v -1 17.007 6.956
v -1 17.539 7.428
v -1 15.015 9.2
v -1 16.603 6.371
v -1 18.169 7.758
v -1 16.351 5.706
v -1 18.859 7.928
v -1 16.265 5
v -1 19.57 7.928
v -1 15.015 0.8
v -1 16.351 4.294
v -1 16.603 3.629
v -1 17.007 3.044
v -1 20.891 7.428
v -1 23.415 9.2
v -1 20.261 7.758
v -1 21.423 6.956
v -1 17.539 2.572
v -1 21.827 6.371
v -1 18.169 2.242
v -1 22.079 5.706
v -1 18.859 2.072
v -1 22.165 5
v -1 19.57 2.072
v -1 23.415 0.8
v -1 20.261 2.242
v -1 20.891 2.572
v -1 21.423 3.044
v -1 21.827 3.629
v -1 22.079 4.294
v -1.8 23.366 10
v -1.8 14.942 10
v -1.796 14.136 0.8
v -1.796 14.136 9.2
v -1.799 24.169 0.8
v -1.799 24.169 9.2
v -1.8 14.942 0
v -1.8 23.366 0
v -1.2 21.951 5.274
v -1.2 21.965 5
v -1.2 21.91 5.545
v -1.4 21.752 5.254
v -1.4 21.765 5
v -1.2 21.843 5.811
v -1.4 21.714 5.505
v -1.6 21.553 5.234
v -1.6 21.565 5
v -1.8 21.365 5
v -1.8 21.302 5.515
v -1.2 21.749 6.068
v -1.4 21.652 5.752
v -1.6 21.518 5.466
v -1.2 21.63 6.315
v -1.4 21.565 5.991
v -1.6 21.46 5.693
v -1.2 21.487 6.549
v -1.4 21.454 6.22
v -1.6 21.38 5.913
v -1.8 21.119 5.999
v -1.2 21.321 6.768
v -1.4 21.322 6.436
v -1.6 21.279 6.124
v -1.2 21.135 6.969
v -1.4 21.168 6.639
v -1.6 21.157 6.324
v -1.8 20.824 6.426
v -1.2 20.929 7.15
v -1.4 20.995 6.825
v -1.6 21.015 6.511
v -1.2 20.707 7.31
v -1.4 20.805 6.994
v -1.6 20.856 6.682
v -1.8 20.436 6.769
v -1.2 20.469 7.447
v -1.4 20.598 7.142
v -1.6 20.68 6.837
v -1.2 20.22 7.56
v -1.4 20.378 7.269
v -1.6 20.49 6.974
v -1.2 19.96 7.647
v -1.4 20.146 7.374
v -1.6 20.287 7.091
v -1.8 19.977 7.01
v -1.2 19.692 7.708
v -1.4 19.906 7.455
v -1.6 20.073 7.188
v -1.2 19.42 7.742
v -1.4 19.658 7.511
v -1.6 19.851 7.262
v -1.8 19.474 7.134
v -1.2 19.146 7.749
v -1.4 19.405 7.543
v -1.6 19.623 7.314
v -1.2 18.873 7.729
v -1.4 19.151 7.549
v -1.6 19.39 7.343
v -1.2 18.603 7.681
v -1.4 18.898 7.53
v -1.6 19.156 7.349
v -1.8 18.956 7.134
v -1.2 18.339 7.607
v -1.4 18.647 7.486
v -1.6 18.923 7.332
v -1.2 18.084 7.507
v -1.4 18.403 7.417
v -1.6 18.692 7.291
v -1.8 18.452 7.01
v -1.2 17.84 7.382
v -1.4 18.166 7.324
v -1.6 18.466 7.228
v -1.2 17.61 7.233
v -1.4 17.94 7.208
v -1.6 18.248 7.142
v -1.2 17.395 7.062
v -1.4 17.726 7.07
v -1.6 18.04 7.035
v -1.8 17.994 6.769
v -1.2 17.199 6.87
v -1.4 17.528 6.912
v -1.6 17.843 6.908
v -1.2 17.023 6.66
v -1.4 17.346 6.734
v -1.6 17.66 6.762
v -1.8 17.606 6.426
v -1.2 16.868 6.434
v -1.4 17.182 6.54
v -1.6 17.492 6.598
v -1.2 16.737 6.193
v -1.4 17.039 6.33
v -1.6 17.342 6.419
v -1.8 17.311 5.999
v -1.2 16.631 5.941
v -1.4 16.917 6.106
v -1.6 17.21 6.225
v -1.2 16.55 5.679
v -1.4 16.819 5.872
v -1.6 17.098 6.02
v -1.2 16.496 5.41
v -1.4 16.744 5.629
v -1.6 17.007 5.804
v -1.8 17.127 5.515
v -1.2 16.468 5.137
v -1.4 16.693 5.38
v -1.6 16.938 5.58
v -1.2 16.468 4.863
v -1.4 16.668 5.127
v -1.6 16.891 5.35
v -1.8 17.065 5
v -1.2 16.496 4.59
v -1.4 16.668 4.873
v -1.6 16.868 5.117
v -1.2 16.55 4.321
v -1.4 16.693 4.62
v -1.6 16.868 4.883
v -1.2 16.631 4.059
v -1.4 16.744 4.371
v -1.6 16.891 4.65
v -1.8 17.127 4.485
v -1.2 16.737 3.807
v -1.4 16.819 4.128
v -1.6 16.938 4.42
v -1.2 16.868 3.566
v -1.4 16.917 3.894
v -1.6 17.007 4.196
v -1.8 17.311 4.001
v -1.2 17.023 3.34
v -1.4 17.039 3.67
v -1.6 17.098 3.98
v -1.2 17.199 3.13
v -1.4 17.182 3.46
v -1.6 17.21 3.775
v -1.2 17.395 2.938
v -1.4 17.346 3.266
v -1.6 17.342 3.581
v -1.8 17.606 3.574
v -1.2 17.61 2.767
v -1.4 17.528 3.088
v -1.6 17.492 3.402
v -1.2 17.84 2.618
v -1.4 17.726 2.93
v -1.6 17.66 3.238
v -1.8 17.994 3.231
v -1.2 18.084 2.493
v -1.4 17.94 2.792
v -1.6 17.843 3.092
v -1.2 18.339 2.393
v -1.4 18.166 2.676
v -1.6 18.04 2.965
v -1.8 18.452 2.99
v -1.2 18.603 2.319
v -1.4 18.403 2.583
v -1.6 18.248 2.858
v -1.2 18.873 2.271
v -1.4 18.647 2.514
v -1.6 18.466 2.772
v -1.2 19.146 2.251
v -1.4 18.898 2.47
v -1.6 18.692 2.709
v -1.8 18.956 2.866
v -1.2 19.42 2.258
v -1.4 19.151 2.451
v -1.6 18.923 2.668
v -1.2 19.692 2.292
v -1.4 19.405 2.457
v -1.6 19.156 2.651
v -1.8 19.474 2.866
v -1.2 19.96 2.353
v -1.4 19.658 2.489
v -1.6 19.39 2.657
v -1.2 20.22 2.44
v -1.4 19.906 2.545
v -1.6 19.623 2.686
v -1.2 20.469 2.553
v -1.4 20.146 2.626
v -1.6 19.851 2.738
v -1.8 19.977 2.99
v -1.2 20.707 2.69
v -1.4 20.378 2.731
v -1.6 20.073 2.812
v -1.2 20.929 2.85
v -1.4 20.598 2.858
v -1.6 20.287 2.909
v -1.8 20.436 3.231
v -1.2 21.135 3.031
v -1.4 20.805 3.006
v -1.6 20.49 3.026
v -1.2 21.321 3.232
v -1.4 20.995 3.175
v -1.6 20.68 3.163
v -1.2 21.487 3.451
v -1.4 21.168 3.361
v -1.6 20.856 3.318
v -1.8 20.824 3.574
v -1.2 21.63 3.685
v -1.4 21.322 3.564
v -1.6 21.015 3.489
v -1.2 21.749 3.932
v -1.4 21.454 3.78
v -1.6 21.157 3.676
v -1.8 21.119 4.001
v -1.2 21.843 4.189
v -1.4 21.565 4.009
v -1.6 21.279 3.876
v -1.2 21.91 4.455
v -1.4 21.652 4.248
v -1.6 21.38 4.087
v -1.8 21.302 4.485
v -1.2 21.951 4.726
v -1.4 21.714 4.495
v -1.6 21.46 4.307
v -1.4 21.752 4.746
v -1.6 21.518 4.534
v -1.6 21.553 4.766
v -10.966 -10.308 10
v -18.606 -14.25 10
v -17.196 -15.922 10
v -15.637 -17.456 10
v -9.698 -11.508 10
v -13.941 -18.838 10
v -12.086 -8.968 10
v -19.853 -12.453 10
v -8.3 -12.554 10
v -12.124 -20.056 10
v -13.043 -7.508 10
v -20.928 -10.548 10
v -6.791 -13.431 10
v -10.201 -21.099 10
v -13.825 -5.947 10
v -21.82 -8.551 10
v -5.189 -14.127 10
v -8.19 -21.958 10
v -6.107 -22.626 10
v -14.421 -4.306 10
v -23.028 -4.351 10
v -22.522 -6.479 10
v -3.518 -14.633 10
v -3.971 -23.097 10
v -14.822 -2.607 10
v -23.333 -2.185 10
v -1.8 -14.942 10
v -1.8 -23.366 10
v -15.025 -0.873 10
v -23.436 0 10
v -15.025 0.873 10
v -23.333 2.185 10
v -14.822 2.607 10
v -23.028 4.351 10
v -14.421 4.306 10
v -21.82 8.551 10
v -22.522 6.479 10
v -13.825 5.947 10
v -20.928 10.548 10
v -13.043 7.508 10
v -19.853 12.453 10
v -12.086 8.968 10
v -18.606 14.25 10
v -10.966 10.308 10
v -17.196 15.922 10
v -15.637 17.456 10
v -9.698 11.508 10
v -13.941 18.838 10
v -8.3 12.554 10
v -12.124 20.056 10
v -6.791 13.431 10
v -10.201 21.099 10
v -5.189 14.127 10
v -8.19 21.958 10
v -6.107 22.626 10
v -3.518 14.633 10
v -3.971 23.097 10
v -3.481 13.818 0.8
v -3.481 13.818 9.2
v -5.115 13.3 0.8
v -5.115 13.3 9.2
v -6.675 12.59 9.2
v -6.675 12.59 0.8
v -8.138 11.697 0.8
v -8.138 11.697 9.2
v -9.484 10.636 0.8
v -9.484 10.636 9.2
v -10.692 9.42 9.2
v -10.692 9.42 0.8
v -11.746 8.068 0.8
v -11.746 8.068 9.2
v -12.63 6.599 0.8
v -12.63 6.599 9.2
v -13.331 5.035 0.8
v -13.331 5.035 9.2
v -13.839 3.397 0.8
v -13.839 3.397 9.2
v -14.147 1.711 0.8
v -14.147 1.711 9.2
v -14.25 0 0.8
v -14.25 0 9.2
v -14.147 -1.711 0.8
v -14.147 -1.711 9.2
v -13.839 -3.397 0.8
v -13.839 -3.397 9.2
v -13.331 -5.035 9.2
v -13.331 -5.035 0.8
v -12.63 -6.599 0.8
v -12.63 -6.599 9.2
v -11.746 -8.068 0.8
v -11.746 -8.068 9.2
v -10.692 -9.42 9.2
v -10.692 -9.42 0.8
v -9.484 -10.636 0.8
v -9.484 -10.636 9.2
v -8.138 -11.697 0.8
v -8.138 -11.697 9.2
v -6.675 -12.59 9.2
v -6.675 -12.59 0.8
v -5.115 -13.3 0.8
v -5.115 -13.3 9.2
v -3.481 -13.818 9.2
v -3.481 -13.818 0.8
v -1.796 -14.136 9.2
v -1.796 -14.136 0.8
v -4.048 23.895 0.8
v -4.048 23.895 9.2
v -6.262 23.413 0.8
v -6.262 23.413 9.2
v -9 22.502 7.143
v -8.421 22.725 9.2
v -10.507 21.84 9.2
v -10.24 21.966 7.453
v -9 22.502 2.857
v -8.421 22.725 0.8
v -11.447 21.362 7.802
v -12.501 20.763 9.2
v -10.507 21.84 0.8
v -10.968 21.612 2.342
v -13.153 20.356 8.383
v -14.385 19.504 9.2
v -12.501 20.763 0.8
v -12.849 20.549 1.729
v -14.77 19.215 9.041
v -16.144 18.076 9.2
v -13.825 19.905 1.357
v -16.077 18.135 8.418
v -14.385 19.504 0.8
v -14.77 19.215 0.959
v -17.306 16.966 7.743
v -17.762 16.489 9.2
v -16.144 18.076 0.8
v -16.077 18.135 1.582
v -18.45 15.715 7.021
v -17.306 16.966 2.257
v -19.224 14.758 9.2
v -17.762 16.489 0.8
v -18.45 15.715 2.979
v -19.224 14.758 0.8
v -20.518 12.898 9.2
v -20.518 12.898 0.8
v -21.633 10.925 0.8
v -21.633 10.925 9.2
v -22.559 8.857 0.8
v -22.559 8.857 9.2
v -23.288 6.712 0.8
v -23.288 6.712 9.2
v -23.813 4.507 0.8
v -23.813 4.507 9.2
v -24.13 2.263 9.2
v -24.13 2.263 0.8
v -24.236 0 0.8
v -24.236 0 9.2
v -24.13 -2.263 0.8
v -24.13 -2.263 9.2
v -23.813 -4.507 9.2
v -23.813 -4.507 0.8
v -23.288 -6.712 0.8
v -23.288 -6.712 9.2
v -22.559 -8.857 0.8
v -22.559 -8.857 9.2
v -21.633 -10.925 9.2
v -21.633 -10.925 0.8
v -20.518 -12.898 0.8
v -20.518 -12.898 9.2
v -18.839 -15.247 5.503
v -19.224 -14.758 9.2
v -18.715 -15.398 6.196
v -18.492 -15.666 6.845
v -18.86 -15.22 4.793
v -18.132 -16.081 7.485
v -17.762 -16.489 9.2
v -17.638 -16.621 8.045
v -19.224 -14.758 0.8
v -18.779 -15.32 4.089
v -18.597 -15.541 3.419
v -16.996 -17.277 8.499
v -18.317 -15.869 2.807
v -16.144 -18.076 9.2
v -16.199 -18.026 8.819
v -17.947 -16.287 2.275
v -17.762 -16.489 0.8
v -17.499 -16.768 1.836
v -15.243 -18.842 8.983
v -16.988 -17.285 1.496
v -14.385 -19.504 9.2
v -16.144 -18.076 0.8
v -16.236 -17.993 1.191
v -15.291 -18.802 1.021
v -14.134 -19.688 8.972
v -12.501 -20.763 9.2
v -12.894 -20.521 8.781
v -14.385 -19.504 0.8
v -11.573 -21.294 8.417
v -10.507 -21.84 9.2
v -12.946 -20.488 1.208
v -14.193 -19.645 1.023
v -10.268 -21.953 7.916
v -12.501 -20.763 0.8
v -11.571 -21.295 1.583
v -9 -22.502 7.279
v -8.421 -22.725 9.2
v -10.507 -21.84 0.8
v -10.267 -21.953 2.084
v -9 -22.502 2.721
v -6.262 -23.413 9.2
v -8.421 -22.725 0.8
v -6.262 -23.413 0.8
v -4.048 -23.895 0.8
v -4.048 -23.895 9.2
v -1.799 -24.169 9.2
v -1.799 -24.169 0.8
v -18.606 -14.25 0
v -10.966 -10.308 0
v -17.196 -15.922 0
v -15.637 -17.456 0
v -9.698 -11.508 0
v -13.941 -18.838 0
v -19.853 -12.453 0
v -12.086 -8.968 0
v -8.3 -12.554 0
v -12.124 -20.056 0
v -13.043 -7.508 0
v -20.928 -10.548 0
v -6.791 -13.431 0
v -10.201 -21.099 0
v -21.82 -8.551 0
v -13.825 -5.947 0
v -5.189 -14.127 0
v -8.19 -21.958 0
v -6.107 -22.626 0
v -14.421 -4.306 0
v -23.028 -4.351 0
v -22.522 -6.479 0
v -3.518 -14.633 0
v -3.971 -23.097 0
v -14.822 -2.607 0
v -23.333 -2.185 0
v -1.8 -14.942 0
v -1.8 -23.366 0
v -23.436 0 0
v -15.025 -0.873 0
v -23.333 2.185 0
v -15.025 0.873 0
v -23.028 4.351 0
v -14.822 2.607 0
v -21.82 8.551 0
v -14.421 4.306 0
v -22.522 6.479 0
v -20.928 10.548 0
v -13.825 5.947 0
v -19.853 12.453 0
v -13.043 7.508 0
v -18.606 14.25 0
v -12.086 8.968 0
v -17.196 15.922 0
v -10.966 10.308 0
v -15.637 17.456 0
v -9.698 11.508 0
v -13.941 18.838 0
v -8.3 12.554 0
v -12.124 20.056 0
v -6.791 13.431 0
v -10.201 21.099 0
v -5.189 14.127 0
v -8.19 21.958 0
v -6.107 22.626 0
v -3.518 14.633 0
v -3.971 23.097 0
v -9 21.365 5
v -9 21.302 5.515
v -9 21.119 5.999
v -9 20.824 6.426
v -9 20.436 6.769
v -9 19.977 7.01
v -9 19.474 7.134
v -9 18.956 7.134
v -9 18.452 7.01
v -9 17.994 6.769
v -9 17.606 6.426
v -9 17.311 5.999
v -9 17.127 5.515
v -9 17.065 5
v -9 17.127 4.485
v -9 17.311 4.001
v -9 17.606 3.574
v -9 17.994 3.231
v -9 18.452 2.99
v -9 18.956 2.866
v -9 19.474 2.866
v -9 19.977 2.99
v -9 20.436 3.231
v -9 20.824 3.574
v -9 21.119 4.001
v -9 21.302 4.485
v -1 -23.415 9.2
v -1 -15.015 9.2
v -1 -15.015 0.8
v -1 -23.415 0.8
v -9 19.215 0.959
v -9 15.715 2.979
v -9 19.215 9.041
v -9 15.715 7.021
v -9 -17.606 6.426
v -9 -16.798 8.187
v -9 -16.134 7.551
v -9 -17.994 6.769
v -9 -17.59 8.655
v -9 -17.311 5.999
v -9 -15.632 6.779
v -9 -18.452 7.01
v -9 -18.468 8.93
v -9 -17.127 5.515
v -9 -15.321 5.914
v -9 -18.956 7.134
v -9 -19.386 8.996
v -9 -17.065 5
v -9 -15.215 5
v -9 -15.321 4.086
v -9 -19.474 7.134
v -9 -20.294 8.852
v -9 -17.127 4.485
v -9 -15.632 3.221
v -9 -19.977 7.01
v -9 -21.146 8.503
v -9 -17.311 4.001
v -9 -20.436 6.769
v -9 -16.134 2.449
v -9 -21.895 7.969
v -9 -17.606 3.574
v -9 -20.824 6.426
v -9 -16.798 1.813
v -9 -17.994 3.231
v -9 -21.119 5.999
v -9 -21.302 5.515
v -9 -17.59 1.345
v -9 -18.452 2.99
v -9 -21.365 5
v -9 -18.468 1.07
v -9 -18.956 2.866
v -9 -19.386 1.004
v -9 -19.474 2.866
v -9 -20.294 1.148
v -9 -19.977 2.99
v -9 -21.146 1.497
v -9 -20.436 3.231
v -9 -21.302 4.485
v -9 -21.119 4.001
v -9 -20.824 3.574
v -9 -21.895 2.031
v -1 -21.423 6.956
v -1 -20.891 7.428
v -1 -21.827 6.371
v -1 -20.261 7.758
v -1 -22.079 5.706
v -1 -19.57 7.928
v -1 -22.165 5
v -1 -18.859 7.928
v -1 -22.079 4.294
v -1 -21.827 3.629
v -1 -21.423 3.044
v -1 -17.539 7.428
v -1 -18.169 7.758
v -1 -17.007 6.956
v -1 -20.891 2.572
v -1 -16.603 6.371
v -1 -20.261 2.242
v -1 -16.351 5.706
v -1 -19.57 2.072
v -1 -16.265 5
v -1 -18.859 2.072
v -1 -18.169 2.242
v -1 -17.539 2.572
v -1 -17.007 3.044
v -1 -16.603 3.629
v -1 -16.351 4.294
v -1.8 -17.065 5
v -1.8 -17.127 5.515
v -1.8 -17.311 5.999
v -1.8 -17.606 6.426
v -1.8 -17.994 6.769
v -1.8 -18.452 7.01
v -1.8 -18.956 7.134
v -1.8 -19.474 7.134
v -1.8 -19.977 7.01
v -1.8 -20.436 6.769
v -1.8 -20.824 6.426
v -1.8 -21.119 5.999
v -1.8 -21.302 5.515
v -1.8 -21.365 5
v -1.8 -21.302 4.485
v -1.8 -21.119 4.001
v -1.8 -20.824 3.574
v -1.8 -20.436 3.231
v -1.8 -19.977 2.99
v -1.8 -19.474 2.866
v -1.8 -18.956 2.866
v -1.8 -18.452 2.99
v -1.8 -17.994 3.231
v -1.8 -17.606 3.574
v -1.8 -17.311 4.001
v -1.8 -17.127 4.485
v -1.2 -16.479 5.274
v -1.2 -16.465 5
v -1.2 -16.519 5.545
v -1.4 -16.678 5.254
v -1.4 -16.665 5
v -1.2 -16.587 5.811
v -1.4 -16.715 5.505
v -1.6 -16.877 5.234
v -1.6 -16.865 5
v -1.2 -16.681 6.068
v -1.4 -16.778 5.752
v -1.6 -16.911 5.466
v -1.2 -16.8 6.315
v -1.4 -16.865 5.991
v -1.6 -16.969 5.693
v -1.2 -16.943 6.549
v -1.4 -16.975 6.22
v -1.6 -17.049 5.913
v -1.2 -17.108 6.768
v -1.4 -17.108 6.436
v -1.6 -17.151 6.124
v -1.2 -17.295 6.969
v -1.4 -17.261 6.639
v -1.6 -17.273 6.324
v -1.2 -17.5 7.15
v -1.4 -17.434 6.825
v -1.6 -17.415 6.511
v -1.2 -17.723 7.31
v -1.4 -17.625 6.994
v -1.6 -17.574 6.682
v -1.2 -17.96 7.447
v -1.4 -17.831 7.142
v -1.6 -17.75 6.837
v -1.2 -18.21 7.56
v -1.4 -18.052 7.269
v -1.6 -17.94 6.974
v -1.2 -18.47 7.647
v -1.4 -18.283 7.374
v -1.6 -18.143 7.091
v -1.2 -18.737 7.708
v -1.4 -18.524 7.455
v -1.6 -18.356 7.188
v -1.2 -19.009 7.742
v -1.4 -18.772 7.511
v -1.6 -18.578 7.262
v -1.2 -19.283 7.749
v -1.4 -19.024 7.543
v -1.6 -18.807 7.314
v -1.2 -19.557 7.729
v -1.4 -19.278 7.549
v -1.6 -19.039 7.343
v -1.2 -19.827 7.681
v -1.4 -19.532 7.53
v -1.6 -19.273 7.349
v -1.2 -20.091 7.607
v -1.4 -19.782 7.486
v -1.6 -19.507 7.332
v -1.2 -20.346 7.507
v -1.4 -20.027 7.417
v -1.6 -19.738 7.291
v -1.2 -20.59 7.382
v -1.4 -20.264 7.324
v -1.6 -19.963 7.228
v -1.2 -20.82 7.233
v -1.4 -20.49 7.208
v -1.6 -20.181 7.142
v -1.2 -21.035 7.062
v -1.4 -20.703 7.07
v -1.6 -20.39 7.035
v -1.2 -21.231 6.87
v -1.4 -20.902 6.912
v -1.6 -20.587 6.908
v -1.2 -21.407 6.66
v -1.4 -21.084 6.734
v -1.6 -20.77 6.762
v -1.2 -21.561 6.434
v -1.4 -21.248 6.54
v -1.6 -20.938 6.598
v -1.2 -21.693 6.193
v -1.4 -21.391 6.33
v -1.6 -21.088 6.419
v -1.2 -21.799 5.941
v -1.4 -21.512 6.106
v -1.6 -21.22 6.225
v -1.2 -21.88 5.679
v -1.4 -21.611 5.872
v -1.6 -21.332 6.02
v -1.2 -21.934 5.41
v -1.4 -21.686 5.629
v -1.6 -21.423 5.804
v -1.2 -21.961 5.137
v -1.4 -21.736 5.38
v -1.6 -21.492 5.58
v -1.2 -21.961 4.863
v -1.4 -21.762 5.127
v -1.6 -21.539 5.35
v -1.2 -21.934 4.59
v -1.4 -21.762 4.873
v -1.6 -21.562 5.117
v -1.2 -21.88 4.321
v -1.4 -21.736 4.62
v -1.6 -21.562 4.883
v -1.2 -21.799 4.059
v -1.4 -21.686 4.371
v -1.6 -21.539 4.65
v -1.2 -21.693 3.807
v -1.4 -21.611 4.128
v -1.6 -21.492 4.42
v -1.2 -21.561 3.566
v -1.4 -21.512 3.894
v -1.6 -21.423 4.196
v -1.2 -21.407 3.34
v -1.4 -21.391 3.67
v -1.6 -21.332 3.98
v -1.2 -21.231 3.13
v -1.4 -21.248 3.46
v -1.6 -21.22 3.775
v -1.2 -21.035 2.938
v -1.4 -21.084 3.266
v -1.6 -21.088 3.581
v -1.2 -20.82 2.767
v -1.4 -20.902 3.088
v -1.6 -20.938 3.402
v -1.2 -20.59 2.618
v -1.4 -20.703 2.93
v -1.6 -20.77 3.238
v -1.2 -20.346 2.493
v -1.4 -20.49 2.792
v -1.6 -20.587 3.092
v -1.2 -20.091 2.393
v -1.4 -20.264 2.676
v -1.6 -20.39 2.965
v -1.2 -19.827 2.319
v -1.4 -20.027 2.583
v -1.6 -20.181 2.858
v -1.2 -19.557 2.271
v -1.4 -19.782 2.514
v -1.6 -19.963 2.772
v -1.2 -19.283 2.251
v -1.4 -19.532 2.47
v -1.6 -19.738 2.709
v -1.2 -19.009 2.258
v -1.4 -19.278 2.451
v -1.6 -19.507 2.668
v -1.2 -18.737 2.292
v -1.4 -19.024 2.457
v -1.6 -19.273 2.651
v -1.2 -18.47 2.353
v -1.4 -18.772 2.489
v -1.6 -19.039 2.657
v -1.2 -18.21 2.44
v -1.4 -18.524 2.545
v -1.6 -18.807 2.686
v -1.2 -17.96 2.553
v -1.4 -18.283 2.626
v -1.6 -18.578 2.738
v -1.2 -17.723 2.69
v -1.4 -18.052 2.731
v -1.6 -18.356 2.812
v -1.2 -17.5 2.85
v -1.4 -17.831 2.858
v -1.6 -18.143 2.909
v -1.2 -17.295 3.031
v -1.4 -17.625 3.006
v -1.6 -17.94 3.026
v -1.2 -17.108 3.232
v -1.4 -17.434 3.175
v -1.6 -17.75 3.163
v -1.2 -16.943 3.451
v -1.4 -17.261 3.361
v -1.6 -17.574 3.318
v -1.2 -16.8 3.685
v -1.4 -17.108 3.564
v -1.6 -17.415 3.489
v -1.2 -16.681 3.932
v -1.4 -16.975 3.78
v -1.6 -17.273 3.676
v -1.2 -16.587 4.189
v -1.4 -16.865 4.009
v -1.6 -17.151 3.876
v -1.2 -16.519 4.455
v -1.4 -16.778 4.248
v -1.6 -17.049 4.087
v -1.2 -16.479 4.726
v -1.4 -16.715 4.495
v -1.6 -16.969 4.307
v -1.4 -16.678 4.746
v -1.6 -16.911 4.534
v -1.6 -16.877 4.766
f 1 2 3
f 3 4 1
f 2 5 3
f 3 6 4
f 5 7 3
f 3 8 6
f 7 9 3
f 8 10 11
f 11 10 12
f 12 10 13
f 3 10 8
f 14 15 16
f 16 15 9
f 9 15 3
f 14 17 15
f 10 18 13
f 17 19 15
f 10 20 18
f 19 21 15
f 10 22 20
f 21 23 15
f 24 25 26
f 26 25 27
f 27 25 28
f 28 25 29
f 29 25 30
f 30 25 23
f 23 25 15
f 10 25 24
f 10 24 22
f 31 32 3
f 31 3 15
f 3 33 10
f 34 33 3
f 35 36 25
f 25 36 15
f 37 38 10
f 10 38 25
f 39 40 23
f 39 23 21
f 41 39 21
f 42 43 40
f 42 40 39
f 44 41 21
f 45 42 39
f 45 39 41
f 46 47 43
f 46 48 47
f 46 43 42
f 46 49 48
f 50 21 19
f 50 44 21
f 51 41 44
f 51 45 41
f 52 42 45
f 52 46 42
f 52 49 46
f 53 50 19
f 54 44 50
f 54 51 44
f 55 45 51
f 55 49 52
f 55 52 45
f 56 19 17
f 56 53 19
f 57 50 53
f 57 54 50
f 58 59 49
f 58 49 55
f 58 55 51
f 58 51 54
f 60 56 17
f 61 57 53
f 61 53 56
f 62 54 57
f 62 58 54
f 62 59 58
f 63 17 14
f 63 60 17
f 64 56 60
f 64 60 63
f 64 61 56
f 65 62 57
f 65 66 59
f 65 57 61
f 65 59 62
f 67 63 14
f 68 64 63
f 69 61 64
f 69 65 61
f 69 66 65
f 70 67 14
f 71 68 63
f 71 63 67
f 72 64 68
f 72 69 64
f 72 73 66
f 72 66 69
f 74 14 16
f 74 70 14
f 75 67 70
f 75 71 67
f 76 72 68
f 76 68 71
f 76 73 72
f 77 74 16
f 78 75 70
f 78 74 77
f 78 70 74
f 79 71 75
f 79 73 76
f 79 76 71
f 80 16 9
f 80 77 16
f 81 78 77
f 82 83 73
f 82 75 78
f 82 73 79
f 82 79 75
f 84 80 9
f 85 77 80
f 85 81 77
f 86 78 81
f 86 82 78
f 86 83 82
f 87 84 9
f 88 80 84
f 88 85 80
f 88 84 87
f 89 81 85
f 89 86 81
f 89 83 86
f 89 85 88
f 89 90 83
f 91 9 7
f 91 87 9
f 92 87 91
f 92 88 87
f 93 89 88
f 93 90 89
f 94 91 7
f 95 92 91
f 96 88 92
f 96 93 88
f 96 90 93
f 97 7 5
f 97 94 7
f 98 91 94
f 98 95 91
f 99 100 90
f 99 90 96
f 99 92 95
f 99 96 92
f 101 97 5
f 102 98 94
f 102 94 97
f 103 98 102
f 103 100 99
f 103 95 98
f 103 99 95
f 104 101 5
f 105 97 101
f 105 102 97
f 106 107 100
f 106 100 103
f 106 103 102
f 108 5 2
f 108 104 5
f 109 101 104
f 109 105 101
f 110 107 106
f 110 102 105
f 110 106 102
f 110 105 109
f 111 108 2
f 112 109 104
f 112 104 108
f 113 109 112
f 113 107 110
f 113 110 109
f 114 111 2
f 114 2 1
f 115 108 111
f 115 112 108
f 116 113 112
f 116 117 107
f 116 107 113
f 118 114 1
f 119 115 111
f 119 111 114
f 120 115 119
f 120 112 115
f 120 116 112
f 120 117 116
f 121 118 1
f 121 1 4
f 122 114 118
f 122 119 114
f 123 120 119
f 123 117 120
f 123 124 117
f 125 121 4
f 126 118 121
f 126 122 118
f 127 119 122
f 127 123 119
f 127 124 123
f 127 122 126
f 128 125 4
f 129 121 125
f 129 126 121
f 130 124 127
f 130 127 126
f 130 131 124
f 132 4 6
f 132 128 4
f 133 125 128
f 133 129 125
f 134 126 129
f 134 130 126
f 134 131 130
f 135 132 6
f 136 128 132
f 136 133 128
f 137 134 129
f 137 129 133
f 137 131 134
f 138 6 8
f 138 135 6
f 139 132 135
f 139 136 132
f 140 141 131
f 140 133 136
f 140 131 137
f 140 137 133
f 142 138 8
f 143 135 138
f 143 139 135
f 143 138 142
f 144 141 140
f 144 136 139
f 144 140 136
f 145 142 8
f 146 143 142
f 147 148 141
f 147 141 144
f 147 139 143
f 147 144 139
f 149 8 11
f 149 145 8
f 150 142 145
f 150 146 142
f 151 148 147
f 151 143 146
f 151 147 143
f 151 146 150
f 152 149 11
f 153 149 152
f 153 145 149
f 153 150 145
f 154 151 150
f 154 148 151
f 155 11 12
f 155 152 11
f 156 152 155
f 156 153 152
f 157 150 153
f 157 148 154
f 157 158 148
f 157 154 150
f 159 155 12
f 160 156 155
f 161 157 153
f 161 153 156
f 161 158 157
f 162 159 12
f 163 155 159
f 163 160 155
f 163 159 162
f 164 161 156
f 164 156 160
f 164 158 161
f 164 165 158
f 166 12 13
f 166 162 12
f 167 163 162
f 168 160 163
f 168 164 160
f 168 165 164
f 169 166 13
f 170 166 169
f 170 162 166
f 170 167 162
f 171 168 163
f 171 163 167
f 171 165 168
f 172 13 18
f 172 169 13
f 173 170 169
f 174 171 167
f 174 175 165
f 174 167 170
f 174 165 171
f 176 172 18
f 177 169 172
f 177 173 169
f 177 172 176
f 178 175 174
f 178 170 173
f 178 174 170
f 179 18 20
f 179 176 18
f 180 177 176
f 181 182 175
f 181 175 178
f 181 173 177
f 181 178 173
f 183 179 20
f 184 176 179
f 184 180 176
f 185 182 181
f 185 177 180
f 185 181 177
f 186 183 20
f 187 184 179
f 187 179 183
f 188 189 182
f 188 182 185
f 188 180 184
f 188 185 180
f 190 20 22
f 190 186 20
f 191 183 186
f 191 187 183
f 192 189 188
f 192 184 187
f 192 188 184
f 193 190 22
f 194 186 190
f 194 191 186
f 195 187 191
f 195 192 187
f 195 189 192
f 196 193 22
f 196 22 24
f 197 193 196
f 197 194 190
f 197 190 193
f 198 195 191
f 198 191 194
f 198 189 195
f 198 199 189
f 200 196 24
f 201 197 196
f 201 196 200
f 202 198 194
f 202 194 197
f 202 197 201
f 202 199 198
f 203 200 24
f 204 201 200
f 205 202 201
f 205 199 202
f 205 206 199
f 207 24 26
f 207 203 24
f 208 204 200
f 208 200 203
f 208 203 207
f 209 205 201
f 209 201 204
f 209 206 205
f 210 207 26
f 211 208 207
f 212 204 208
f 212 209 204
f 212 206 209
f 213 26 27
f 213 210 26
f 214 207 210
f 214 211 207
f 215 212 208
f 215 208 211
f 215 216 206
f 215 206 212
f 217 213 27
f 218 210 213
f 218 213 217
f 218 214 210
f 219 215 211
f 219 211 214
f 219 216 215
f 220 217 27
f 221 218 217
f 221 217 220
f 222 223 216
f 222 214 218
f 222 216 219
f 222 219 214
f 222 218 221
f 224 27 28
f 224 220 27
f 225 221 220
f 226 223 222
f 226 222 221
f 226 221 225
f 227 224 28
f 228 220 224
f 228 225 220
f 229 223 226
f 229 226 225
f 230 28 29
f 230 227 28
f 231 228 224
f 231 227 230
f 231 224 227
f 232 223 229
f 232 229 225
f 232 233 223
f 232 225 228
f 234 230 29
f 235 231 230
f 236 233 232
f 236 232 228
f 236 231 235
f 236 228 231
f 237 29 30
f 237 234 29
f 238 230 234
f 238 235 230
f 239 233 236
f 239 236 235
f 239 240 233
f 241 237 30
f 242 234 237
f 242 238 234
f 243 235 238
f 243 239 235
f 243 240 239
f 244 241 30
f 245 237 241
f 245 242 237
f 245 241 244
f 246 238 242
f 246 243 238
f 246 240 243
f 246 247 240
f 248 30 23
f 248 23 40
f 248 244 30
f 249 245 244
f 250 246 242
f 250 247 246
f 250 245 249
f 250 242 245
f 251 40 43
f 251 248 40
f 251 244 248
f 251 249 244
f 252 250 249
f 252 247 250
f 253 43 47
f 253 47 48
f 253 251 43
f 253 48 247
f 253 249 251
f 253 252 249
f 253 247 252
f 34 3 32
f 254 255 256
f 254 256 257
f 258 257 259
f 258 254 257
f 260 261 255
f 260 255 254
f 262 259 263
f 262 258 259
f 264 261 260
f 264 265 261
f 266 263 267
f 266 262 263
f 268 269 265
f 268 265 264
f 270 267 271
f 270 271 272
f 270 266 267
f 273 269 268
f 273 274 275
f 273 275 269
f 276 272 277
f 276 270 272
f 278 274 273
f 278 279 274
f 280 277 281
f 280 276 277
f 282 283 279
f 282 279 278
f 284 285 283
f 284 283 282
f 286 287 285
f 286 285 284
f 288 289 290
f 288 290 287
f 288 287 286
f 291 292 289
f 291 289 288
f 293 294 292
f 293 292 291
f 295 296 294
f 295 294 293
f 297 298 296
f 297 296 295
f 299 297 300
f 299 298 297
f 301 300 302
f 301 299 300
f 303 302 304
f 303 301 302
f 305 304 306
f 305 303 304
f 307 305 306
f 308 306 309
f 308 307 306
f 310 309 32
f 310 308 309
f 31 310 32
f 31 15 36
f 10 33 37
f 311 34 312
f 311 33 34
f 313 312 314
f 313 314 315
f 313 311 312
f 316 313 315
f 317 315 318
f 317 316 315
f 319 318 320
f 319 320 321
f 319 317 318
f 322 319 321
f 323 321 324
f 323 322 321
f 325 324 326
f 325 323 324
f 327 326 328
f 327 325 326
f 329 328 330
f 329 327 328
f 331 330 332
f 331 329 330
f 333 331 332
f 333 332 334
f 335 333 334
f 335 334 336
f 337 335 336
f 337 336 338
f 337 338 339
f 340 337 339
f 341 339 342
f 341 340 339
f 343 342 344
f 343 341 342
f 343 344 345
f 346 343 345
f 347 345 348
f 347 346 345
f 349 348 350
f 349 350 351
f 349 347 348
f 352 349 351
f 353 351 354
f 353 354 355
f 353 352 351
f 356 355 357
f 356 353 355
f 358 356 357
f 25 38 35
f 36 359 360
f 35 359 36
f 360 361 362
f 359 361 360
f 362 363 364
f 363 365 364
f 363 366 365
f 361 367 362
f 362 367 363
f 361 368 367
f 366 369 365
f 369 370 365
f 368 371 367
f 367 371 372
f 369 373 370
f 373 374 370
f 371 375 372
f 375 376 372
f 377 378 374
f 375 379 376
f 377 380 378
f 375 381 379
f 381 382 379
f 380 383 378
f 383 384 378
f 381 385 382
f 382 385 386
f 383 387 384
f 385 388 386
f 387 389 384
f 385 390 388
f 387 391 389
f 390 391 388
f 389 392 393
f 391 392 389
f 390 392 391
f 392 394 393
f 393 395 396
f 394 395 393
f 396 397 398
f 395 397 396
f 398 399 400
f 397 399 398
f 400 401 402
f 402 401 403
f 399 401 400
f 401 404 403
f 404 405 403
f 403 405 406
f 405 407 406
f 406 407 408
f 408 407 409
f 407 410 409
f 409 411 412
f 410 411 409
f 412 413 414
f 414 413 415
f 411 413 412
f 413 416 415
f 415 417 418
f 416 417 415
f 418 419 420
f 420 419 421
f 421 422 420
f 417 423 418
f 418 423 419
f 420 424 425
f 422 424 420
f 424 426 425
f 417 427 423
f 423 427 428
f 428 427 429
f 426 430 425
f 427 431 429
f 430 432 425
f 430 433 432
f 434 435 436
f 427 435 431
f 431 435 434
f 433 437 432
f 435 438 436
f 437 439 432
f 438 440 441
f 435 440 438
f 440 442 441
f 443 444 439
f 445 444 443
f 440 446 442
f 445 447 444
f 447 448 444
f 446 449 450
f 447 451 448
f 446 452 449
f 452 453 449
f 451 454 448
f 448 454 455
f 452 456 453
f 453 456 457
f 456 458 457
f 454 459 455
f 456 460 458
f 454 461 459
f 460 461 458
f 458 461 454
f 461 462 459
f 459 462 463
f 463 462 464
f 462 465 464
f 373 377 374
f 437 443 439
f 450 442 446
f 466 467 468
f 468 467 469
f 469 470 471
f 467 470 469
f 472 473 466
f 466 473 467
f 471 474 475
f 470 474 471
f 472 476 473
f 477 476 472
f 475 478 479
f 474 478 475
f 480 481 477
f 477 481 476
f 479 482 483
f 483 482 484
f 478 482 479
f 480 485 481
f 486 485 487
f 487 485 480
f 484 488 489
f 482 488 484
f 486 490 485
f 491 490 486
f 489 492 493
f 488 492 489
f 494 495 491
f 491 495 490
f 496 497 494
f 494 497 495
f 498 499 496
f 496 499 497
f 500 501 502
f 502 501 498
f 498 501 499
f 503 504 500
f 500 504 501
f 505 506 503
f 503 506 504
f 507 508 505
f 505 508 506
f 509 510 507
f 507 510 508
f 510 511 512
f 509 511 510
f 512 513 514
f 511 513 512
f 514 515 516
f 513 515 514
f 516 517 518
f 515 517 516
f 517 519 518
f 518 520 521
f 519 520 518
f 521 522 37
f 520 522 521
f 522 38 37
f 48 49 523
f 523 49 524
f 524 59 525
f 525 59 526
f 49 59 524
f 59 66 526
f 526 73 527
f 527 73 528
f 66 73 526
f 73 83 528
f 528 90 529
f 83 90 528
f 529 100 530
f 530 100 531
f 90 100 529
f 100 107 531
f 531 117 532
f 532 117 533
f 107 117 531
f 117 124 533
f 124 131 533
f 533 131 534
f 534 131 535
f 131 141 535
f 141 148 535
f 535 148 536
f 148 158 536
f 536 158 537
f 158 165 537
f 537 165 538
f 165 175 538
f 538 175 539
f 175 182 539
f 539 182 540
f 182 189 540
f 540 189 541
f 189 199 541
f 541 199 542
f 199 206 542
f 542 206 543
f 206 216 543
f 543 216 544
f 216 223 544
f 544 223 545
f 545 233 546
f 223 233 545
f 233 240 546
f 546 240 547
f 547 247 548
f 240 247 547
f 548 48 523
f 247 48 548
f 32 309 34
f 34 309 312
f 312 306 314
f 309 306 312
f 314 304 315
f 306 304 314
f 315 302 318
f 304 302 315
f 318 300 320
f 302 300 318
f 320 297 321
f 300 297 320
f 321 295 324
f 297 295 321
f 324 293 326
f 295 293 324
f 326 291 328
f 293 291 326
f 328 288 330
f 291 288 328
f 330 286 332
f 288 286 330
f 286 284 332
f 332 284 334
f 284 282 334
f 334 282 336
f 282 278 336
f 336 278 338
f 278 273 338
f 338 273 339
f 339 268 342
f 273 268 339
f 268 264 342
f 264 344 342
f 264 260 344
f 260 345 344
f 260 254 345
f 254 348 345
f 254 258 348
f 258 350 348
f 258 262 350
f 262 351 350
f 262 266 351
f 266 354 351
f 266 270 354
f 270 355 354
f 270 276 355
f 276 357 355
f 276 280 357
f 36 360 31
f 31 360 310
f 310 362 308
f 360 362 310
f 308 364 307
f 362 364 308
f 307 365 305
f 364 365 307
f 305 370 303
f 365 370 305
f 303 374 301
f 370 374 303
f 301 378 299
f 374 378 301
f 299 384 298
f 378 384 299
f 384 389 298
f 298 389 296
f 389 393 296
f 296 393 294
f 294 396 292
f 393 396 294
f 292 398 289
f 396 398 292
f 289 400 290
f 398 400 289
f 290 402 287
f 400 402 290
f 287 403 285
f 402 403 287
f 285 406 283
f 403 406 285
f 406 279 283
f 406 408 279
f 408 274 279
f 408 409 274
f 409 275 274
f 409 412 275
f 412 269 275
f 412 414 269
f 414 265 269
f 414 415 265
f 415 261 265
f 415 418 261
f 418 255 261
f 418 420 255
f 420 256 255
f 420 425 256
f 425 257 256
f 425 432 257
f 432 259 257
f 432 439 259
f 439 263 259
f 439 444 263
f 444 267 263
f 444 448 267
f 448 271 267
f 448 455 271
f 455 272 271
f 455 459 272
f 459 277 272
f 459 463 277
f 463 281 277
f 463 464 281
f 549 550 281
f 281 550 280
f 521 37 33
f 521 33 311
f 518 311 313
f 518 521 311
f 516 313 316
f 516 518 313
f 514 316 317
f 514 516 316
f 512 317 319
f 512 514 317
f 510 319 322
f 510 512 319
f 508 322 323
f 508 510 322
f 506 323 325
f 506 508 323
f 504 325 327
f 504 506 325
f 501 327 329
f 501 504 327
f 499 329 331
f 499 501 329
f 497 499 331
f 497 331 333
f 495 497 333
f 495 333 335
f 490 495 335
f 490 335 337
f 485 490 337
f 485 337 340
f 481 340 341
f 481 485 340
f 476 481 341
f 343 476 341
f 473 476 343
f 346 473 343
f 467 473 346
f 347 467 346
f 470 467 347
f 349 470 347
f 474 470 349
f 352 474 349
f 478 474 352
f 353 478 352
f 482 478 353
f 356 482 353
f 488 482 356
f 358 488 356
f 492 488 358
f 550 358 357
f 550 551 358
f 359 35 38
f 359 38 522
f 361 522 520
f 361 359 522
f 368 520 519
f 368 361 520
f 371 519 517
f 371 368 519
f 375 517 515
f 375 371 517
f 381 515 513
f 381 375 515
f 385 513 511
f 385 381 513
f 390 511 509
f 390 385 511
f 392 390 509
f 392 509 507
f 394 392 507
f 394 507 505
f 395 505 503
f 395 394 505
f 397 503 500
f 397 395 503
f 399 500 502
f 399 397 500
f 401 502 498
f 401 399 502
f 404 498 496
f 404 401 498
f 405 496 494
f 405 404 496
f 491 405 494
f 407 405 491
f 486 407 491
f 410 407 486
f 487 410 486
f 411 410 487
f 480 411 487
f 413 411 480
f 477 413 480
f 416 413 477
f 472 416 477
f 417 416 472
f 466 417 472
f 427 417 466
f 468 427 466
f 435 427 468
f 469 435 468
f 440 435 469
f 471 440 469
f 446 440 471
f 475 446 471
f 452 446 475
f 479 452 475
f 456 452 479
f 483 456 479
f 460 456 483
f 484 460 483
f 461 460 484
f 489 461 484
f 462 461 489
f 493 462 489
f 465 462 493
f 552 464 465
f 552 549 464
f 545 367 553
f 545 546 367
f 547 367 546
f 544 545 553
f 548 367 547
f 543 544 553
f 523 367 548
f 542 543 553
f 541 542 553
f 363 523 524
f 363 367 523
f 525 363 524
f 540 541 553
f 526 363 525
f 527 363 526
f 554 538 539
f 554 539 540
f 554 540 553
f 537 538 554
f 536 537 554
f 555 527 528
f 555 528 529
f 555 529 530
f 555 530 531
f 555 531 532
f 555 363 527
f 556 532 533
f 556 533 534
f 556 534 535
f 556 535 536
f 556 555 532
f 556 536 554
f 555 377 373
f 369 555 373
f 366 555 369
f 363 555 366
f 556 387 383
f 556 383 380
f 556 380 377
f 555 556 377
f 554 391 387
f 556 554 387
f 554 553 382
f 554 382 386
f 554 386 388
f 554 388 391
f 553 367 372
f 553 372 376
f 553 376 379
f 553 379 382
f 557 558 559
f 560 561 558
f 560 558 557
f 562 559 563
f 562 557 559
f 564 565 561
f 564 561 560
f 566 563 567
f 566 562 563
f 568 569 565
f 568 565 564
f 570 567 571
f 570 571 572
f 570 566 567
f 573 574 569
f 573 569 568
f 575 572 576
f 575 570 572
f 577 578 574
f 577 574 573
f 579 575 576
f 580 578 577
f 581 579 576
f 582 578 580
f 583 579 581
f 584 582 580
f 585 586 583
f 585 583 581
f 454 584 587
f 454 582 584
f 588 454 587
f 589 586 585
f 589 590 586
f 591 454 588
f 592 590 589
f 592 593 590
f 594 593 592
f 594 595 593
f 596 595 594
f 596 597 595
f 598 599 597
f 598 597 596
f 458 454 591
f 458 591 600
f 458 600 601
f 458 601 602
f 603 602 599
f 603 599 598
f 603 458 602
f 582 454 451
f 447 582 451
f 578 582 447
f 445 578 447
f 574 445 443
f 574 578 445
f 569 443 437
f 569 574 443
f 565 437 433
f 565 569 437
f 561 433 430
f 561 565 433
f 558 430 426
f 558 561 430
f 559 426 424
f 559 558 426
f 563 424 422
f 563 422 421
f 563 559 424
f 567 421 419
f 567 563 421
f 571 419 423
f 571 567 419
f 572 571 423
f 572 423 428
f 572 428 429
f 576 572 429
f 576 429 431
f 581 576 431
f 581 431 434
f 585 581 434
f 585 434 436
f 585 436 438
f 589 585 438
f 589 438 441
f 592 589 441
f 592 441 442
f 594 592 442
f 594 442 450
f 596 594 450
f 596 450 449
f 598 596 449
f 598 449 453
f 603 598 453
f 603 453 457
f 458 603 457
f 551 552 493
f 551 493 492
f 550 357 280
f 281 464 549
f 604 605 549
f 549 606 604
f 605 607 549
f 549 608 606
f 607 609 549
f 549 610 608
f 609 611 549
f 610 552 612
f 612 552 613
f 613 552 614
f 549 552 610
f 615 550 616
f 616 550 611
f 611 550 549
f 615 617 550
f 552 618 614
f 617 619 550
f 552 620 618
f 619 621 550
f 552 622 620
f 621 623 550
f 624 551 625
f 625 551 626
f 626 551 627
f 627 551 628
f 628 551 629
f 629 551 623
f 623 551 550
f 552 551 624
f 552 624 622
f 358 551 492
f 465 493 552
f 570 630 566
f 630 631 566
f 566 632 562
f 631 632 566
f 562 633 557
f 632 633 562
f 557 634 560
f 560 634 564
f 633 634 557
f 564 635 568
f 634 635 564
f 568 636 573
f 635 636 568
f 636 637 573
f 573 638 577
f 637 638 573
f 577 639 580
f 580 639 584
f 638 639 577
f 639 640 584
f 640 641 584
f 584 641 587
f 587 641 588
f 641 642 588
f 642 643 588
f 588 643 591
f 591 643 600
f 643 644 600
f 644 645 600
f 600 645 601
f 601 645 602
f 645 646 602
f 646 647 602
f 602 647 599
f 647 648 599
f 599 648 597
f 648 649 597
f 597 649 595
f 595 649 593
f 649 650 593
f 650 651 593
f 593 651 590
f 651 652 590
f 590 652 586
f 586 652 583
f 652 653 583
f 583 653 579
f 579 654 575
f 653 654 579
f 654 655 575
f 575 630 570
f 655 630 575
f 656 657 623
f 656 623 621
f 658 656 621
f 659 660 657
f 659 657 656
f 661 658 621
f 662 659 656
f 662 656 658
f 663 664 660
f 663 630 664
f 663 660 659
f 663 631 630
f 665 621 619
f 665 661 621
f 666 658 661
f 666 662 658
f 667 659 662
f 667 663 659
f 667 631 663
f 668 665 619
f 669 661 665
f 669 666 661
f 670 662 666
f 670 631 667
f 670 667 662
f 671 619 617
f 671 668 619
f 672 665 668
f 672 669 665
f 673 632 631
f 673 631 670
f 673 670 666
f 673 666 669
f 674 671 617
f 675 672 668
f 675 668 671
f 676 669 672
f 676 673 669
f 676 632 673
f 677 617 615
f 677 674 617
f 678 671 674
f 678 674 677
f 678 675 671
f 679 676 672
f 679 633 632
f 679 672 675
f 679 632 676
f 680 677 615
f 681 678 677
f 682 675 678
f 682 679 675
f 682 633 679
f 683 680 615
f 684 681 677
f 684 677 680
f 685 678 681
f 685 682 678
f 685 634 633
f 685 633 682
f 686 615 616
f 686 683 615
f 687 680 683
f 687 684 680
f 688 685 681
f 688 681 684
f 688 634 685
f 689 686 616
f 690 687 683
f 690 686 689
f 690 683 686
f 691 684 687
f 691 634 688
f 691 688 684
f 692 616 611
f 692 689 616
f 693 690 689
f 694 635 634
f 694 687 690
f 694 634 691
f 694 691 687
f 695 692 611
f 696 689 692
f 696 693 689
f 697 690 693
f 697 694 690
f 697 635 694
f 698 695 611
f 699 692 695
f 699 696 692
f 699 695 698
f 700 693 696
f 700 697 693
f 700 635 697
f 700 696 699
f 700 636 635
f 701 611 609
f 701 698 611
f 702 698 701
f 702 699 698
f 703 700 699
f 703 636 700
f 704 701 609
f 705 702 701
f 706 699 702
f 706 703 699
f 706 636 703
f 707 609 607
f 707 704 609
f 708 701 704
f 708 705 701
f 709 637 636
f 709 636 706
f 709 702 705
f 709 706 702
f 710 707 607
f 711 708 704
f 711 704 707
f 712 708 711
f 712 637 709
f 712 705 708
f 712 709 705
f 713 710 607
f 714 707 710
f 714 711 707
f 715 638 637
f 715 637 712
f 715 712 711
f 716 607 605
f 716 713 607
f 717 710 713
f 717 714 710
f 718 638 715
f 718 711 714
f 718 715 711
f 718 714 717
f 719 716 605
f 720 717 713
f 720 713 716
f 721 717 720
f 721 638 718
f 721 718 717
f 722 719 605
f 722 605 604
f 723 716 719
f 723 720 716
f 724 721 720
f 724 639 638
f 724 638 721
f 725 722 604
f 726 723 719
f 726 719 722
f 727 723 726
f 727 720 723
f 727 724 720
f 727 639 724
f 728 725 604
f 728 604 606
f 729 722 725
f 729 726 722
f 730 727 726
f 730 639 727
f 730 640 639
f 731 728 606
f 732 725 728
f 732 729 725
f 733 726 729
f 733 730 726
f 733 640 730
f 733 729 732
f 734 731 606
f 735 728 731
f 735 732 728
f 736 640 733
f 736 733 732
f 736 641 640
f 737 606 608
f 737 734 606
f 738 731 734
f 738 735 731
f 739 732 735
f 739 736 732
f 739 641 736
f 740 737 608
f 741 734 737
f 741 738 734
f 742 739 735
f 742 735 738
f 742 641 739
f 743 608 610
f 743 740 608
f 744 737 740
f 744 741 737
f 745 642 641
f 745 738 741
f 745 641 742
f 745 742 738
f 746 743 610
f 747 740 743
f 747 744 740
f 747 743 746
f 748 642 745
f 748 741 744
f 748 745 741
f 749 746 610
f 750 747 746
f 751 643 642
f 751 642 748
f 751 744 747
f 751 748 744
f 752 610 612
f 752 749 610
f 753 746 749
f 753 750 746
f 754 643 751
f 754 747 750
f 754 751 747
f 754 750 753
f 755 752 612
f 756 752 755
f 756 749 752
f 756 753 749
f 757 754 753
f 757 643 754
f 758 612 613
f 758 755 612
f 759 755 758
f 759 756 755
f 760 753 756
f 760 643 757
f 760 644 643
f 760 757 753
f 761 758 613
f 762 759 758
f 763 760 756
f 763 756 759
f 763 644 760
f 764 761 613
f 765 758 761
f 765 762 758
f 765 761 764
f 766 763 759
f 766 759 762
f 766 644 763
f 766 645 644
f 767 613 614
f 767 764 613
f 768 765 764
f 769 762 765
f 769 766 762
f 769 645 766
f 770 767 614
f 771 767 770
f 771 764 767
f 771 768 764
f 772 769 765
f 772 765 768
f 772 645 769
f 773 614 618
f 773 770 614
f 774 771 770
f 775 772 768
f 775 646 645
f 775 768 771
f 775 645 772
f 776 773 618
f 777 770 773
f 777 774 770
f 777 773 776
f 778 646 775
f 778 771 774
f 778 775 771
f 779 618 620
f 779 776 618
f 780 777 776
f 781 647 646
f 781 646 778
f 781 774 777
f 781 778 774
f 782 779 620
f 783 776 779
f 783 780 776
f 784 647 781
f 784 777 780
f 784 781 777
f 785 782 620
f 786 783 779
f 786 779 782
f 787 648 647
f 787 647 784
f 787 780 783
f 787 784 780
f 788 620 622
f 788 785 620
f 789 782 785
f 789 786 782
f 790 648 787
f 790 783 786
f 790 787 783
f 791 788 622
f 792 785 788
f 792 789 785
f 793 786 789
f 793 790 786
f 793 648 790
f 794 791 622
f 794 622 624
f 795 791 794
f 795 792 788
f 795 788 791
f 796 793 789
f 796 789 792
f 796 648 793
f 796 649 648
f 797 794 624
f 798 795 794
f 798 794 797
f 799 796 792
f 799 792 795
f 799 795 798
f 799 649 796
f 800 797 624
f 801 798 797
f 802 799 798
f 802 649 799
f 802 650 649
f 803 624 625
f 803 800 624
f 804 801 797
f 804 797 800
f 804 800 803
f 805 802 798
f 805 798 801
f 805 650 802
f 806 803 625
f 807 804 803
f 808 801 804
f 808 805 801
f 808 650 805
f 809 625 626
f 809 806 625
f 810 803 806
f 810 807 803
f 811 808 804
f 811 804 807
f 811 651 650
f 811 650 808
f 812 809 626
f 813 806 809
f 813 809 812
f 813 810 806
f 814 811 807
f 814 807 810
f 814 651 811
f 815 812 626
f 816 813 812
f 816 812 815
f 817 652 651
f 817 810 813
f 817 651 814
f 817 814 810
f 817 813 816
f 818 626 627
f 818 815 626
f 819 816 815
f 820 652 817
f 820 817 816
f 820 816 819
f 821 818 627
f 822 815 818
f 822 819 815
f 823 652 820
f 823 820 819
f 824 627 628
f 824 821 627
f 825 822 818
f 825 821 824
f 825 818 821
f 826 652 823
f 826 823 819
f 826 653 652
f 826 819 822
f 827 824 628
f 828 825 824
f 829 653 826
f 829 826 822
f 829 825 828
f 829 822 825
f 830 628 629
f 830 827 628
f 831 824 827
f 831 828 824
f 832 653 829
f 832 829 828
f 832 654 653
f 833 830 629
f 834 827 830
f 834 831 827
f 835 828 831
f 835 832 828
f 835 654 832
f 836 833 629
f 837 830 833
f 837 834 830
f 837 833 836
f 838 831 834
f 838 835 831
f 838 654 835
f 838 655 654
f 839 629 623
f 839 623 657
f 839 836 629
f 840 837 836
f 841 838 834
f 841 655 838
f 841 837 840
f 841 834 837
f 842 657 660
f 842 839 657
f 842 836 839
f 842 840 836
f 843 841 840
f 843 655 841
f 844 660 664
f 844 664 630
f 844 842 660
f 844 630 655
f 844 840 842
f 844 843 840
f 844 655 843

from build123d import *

# Parameters (mm, degrees)
PAD_DEPTH       = 10
SKETCH001_R     = 2.15
POCKET_DEPTH    = 23.236509
SKETCH002_R     = 4
POCKET001_DEPTH = 15.236509
SKETCH003_R     = 2.15
POCKET002_DEPTH = 23.236509
POCKET003_DEPTH = 15.236509
CHAMFER_SIZE    = 0.8


with BuildPart() as part:
    # Sketch → Pad (new body)
    with BuildSketch(Plane.XY):
        with BuildLine():
            Line((-1, 14.214869), (-1, 24.214869))
            ThreePointArc((-1, 24.214869), (-24.235509, 0), (-1, -24.214869))
            Line((-1, -24.214869), (-1, -14.214869))
            ThreePointArc((-1, 14.214869), (-14.25, 0), (-1, -14.214869))
        make_face()
    extrude(amount=PAD_DEPTH)

    # Sketch001 (on Face3 of Pad) → Pocket (cut, through all)
    with BuildSketch(Plane.YZ.offset(-1)):
        with Locations((-19.214869, 5)):
            Circle(SKETCH001_R)
    extrude(amount=-POCKET_DEPTH, mode=Mode.SUBTRACT)

    # Sketch002 (on DatumPlane) → Pocket001 (cut, through all)
    with BuildSketch(Plane(origin=(-9, -19.214869, 5), x_dir=(0, -1, 0), z_dir=(-1, 0, 0))):
        Circle(SKETCH002_R)
    extrude(amount=POCKET001_DEPTH, mode=Mode.SUBTRACT)

    # Sketch003 (on Face1 of Pocket001) → Pocket002 (cut, through all)
    with BuildSketch(Plane.YZ.offset(-1)):
        with Locations((19.214869, 5)):
            Circle(SKETCH003_R)
    extrude(amount=-POCKET002_DEPTH, mode=Mode.SUBTRACT)

    # Sketch004 (on DatumPlane) → Pocket003 (cut, through all)
    with BuildSketch(Plane(origin=(-9, -19.214869, 5), x_dir=(0, -1, 0), z_dir=(-1, 0, 0))):
        Polygon((-41.929738, 2.020726), (-41.929738, -2.020726), (-38.429738, -4.041452), (-34.929738, -2.020726), (-34.929738, 2.020726), (-38.429738, 4.041452), align=None)
    extrude(amount=POCKET003_DEPTH, mode=Mode.SUBTRACT)

    # Chamfer
    chamfer_edges = [part.edges().sort_by_distance(p)[0] for p in [
        (-1, 19.214869, 10),
        (-24.235509, 0, 10),
        (-1, -19.214869, 10),
        (-14.25, 0, 10),
        (-1, 19.214869, 0),
        (-24.235509, 0, 0),
        (-1, -19.214869, 0),
        (-14.25, 0, 0),
        (-1, 14.214869, 5),
        (-1, 24.214869, 5),
        (-1, 17.064869, 5),
        (-1, -24.214869, 5),
        (-1, -14.214869, 5),
        (-1, -21.364869, 5),
    ]]
    chamfer(chamfer_edges, length=CHAMFER_SIZE)


solid = part.part
